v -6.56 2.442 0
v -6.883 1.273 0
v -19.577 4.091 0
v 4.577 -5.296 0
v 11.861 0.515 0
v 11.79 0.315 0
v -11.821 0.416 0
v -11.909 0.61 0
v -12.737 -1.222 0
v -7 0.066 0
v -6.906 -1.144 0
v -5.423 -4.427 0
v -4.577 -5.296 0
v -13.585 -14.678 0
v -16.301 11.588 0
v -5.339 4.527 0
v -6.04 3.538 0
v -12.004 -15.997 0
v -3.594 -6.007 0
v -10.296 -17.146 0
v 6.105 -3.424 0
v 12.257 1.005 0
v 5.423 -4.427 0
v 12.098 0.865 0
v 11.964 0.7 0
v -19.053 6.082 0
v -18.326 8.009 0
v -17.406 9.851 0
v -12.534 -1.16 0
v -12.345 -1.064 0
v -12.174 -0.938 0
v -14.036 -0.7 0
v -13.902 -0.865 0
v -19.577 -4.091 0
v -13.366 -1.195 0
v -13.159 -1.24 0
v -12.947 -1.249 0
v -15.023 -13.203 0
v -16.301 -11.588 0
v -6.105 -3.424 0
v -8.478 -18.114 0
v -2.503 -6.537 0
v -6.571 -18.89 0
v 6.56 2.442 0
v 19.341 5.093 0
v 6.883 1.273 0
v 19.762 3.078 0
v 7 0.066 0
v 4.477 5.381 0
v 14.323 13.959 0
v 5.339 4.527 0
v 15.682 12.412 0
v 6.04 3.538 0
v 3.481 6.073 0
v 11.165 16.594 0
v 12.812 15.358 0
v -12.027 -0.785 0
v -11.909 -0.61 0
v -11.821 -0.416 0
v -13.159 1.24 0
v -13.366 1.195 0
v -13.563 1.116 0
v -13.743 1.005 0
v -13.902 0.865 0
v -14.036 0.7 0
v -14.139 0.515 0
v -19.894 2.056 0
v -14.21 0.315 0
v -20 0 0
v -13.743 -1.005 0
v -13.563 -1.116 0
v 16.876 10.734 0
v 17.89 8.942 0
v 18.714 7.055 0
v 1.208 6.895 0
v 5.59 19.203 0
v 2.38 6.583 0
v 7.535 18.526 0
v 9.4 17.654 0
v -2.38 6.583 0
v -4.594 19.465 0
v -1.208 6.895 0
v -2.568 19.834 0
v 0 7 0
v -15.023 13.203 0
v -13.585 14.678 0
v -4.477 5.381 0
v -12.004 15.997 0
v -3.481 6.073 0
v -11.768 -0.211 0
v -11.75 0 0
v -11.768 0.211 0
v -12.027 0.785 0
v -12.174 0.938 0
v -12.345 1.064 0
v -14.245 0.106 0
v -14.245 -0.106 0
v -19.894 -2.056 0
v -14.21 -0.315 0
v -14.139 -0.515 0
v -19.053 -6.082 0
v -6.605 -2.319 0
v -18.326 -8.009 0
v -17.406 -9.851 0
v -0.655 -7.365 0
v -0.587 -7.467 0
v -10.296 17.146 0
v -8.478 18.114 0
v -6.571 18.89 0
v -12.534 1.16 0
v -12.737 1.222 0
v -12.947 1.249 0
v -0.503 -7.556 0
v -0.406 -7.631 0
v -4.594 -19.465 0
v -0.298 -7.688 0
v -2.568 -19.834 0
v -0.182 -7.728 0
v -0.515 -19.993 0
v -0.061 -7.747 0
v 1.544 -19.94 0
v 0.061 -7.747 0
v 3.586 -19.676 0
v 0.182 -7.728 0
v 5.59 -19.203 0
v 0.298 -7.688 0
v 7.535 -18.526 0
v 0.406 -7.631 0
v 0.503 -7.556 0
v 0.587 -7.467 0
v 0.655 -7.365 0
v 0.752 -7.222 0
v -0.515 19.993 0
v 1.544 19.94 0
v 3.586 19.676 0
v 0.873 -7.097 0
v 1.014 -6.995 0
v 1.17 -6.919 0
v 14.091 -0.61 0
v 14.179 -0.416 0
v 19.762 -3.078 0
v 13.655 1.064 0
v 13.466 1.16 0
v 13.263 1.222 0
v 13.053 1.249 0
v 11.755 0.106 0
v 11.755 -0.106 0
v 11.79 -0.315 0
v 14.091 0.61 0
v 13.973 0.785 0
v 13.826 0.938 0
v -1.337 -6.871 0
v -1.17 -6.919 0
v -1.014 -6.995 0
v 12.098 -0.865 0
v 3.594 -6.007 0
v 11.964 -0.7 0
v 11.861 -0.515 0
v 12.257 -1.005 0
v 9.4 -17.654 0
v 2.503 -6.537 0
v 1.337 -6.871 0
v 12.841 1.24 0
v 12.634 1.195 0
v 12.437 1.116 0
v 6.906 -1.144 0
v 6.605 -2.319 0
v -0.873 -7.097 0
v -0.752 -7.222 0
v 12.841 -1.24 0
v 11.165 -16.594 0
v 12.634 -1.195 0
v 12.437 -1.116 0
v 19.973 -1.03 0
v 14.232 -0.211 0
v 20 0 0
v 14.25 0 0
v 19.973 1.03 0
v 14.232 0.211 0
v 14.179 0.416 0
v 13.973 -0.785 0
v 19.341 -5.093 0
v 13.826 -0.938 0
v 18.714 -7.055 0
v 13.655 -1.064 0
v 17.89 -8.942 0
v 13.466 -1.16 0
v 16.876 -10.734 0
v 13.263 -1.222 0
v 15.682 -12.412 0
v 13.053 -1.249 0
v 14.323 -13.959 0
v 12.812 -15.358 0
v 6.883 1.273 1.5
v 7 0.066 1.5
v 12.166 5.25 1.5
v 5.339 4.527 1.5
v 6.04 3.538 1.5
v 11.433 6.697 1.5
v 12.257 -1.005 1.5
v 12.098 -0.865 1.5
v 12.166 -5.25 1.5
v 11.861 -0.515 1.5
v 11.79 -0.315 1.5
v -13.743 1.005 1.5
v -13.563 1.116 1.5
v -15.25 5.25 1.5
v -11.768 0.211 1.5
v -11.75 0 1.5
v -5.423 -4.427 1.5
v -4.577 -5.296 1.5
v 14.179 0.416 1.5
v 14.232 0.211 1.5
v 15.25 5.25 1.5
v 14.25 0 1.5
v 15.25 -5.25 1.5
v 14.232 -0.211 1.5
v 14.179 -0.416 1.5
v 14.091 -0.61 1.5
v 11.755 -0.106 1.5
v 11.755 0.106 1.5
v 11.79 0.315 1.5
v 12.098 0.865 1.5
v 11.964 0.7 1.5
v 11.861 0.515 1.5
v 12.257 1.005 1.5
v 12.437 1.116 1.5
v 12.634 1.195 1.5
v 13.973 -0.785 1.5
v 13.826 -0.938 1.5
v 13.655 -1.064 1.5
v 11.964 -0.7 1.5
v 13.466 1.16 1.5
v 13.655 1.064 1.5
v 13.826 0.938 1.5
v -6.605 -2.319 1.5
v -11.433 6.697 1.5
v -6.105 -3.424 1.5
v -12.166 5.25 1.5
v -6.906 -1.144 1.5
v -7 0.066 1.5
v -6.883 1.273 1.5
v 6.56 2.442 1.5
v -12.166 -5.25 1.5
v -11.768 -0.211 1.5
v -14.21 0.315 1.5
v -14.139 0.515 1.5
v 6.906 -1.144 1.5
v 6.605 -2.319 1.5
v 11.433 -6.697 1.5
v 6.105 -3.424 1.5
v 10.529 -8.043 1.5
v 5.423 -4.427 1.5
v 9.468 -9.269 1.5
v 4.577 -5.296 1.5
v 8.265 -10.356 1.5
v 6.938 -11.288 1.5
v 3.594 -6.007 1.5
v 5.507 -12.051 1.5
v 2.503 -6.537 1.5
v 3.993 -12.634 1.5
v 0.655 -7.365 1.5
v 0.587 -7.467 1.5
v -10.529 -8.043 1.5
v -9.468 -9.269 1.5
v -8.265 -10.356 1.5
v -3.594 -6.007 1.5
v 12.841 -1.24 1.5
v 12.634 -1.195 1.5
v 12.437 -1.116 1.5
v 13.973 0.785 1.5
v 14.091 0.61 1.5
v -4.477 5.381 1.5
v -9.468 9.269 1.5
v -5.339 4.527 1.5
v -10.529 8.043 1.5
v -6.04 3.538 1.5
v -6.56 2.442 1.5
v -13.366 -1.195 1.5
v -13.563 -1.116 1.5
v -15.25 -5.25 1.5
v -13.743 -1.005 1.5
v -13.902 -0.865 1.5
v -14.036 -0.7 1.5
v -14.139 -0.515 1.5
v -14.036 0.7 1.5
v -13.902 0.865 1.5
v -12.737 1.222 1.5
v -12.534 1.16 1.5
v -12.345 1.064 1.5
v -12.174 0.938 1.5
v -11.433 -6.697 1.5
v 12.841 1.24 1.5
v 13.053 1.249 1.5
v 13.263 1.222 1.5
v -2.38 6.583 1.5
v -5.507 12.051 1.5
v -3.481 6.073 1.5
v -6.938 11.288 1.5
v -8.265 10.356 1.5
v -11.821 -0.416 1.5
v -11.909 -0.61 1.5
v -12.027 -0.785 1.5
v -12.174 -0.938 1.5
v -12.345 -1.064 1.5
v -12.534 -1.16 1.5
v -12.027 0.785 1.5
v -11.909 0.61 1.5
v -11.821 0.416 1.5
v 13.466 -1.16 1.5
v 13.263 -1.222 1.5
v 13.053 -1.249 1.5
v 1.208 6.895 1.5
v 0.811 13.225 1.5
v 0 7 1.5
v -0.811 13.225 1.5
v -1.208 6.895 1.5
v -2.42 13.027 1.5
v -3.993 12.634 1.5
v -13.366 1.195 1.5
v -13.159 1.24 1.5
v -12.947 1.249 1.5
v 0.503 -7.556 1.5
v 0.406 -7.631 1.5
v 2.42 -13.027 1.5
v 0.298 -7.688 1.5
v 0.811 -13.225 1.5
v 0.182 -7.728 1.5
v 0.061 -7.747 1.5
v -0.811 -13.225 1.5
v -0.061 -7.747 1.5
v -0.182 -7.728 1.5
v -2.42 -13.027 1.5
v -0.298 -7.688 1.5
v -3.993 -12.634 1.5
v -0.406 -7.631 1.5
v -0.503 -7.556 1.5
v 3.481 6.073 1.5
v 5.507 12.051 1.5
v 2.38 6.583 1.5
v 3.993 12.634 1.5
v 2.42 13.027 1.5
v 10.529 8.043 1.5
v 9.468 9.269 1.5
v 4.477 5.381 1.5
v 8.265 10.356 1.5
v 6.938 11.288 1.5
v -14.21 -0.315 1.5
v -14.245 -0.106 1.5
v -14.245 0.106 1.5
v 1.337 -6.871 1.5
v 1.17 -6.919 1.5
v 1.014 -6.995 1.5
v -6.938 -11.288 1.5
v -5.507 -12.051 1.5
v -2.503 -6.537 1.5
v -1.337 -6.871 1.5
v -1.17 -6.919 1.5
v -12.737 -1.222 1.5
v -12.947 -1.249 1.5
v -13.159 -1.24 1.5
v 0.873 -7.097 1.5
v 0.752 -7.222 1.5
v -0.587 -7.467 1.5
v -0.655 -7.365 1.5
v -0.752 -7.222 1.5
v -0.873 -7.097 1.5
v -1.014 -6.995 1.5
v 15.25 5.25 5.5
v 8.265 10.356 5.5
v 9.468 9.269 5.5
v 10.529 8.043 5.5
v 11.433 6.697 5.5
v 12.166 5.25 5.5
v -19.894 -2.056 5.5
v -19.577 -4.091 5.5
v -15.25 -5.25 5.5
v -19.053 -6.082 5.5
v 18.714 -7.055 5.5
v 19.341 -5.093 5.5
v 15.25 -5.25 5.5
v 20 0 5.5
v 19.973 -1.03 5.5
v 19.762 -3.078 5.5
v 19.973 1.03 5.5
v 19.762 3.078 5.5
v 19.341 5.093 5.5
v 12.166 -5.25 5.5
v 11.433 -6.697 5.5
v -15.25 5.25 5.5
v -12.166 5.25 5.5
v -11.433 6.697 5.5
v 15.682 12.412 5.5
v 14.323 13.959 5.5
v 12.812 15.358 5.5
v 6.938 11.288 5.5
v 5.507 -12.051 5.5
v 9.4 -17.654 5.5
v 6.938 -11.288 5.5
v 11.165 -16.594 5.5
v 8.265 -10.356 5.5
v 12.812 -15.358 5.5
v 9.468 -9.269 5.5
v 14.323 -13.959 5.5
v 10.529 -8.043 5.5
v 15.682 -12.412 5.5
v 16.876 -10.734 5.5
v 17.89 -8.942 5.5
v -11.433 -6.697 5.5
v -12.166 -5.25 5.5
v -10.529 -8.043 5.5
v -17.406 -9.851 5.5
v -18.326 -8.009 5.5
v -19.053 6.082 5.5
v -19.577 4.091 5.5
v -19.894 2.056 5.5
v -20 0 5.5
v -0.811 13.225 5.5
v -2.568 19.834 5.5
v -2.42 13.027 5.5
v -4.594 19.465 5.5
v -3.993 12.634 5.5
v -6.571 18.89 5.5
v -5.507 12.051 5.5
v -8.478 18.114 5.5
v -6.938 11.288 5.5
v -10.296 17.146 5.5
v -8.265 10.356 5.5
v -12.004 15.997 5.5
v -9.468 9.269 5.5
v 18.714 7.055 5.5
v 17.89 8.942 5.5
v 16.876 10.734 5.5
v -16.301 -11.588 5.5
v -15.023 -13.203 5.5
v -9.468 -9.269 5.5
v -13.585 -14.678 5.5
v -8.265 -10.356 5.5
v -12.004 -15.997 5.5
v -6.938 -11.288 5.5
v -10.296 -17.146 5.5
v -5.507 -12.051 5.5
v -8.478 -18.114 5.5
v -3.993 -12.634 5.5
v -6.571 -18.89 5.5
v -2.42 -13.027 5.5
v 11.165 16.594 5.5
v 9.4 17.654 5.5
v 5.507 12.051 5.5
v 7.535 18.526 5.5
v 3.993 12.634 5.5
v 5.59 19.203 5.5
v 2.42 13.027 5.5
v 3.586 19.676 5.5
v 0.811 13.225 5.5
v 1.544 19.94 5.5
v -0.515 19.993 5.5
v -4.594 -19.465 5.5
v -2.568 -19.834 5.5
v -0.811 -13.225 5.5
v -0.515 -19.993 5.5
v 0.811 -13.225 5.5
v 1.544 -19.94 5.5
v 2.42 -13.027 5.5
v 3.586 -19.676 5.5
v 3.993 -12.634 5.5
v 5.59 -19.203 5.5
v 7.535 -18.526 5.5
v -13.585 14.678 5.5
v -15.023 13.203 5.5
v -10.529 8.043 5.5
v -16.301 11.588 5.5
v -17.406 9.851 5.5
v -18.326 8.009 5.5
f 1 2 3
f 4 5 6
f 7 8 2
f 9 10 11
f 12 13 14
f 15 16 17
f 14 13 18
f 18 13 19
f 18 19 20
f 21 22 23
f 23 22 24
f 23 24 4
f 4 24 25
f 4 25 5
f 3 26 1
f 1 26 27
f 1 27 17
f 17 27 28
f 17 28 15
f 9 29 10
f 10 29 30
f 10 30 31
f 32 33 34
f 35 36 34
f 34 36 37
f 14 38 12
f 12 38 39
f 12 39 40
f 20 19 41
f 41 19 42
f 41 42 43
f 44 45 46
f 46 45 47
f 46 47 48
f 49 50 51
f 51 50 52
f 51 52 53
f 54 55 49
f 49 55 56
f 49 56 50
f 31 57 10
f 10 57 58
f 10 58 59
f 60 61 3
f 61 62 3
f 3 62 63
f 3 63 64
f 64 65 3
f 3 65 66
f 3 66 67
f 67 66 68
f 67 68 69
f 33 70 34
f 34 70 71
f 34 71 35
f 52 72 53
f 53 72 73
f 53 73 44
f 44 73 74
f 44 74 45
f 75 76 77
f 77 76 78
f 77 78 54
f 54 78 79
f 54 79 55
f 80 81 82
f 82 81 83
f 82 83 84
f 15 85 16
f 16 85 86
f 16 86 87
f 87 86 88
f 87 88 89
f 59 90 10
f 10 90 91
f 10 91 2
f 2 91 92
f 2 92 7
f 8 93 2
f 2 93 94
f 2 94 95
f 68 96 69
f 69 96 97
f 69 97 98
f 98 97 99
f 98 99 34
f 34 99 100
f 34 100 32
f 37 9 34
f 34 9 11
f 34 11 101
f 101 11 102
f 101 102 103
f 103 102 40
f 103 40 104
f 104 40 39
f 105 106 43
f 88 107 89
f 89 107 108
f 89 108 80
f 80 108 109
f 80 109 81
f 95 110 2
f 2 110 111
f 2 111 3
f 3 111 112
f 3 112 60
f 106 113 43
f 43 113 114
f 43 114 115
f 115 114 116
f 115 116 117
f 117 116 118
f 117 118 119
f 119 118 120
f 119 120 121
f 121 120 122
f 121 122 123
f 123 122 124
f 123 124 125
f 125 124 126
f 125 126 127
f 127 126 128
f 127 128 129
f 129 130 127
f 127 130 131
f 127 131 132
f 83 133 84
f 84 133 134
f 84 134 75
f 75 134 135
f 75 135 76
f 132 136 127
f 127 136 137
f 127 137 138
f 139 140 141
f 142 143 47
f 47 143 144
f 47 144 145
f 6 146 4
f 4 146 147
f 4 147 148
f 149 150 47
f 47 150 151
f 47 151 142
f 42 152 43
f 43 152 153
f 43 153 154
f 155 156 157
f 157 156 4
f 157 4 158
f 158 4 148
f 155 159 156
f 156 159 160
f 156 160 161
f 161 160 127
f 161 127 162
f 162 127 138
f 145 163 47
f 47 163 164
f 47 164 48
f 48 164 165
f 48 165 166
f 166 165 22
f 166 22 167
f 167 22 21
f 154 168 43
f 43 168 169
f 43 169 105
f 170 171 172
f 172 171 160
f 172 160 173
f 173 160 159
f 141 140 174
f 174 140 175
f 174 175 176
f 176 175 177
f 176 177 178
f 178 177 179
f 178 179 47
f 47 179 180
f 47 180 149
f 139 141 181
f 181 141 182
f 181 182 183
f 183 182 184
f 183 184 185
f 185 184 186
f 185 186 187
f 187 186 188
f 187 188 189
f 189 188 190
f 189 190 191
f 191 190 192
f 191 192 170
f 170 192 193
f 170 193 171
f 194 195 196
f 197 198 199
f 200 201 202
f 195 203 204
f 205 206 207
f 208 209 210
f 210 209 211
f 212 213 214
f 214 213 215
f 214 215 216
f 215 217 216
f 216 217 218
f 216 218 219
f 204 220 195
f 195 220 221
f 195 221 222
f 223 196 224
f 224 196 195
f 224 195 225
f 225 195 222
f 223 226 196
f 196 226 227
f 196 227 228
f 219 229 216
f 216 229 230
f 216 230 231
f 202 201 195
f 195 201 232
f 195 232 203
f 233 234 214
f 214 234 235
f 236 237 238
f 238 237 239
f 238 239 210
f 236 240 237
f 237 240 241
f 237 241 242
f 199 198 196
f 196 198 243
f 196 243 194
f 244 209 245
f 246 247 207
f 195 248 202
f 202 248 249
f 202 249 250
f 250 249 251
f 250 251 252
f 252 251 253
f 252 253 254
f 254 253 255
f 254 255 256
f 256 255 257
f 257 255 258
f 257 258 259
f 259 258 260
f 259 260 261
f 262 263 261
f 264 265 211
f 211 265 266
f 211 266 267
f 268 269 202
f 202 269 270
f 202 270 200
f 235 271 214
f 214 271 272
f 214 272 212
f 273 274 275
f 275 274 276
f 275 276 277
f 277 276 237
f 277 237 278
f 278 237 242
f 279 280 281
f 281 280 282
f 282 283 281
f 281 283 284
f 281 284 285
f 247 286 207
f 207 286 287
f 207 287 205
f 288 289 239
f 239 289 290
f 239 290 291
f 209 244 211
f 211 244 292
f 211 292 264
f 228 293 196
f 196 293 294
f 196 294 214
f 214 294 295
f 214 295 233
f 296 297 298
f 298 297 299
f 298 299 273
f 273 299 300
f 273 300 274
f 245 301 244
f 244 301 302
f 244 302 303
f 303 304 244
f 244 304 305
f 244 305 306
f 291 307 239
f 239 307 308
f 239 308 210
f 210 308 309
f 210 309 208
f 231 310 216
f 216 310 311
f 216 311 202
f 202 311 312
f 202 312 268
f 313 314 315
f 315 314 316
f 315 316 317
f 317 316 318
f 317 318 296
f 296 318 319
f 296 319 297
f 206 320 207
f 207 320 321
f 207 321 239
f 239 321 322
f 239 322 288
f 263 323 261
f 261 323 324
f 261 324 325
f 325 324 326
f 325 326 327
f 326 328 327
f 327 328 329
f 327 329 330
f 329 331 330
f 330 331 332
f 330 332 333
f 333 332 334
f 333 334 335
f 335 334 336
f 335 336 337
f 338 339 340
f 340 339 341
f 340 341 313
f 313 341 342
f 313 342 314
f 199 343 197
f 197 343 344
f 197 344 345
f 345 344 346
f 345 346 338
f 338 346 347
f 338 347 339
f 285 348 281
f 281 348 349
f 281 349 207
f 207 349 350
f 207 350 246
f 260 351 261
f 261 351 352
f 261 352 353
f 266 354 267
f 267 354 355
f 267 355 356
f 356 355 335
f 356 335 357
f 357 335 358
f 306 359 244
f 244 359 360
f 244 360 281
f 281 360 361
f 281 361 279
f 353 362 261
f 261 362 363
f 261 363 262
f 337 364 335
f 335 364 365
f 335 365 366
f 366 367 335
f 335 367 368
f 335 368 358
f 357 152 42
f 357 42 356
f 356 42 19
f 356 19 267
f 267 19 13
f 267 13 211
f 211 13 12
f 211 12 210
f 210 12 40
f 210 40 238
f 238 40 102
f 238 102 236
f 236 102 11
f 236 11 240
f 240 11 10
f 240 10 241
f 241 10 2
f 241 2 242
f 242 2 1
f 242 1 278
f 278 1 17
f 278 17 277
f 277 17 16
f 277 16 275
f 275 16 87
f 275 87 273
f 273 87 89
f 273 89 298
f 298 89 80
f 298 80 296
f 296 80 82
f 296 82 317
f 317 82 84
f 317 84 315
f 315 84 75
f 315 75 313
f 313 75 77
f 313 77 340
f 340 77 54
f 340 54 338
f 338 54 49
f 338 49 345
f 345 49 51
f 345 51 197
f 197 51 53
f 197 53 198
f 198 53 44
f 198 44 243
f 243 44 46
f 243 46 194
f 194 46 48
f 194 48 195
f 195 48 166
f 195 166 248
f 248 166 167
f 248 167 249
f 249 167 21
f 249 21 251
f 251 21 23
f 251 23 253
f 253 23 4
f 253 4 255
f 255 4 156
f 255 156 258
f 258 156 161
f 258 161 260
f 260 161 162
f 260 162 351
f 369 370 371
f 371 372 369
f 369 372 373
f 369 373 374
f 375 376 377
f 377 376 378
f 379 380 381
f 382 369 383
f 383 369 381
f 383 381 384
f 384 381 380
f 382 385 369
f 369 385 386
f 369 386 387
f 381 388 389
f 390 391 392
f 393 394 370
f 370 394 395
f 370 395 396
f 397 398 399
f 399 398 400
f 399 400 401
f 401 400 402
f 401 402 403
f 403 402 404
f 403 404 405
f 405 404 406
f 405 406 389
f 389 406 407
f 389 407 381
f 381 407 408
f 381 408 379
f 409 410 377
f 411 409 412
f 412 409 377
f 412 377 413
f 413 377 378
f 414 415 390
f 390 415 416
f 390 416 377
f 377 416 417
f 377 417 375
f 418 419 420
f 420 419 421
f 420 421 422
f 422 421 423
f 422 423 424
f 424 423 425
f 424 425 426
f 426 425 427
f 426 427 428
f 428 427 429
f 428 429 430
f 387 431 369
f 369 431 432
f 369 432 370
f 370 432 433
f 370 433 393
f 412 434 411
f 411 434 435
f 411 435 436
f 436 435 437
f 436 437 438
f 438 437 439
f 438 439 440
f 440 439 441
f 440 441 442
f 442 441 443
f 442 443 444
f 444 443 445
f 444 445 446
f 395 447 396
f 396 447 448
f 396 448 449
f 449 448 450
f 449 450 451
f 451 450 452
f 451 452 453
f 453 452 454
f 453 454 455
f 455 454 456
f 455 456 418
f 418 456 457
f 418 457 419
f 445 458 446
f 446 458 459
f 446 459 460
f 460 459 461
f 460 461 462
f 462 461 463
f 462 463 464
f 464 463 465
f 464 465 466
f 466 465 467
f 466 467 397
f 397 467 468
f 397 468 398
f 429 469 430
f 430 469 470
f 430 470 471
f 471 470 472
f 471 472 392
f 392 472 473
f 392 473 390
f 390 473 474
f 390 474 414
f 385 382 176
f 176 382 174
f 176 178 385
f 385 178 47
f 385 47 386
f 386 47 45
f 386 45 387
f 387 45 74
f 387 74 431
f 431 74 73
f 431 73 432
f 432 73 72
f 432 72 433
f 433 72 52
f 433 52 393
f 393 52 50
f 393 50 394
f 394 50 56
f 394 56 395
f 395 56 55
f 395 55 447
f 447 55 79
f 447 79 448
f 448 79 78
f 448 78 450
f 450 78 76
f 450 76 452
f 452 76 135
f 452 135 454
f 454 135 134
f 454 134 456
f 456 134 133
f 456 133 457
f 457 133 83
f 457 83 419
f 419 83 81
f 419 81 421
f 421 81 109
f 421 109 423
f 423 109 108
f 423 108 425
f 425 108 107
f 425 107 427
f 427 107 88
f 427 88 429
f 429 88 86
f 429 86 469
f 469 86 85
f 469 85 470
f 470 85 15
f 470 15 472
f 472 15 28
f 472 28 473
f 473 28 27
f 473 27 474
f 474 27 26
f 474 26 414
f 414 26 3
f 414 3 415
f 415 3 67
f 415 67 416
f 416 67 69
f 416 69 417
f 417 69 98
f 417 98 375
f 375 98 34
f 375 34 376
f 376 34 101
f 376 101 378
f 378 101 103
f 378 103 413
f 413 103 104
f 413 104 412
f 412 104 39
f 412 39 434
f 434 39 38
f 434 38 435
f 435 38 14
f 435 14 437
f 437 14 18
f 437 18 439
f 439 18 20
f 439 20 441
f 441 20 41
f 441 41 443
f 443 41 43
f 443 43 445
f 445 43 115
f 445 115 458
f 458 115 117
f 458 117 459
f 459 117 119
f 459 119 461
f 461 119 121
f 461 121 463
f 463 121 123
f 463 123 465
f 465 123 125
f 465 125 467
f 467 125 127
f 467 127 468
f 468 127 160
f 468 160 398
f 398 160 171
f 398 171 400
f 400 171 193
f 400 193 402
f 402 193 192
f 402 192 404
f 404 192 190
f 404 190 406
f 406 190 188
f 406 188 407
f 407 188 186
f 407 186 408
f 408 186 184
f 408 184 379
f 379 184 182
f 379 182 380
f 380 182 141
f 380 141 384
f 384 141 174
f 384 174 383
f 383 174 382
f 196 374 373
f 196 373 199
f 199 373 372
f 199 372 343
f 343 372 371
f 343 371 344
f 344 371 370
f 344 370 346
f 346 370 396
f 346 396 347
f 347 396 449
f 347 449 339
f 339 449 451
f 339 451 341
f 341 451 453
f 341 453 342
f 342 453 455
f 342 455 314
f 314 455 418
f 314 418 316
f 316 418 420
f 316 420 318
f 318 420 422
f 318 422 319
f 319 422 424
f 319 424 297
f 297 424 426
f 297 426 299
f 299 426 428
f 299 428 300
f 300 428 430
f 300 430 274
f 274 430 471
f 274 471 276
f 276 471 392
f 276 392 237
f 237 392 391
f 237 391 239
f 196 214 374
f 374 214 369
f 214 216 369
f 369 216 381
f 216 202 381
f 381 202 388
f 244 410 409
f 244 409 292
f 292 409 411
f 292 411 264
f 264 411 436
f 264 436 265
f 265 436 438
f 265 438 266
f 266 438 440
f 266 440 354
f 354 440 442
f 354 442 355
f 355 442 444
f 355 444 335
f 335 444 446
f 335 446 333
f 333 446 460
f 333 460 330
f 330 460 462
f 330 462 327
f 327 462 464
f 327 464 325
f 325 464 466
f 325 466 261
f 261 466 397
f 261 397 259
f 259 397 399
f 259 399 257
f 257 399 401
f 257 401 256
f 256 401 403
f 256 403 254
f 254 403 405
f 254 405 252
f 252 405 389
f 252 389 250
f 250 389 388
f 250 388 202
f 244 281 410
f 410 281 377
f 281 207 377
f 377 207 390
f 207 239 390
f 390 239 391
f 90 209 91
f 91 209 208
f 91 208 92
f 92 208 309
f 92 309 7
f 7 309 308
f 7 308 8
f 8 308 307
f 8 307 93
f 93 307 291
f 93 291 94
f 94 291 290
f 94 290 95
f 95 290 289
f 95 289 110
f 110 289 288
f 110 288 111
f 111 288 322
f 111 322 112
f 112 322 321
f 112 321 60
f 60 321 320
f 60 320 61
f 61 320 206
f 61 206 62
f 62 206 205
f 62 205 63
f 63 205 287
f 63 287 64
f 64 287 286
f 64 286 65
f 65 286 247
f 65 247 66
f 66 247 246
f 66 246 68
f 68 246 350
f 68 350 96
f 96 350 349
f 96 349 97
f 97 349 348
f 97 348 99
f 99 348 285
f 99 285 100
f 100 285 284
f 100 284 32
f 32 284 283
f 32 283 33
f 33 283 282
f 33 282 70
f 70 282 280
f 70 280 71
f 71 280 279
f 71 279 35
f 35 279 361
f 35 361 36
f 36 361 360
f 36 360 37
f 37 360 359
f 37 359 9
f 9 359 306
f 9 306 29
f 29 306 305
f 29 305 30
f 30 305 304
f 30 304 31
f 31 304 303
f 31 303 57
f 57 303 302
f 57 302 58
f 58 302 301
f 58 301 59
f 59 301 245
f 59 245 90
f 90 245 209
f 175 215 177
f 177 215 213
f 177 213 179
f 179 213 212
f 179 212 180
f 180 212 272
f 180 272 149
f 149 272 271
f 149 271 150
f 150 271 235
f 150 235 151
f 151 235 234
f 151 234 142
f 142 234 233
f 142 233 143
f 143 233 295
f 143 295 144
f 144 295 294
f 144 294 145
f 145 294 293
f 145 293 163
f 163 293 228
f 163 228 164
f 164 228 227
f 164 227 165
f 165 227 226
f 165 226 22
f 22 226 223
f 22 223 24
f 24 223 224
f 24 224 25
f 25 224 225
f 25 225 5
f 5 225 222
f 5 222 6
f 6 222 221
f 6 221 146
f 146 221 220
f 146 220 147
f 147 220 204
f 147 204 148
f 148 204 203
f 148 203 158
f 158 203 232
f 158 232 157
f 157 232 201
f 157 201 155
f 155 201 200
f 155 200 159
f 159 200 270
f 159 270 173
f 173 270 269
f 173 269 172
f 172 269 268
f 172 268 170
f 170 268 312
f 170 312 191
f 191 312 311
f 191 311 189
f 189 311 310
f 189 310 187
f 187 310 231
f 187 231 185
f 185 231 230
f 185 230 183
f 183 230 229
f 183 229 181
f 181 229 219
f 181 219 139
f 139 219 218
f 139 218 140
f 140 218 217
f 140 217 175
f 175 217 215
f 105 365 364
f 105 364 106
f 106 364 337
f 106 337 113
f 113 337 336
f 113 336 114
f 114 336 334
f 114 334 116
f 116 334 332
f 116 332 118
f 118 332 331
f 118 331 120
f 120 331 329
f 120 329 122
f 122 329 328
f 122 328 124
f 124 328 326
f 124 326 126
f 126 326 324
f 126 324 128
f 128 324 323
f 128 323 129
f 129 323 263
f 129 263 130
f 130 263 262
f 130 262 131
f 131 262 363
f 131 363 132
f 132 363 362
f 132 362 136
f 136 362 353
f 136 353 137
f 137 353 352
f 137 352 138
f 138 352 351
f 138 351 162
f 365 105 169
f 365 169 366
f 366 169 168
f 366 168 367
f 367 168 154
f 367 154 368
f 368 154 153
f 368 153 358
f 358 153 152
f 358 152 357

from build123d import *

# Parameters (mm, degrees)
SKIZZE1_R                       = 20
SKIZZE1_R_2                     = 7
AUFSATZ_LINEAR_AUSTRAGEN1_DEPTH = 5.5
SCHNITT_LINEAR_AUSTRAGEN1_DEPTH = 4
SCHNITT_LINEAR_AUSTRAGEN2_REACH = 7.5
SKIZZE3_R                       = 1.25
SCHNITT_LINEAR_AUSTRAGEN3_REACH = 3.5
SKIZZE4_R                       = 0.75
VERRUNDUNG1_R                   = 1


with BuildPart() as part:
    # Skizze1 → Aufsatz-Linear austragen1 (new body)
    with BuildSketch(Plane.XY):
        Circle(SKIZZE1_R)
        Circle(SKIZZE1_R_2, mode=Mode.SUBTRACT)
    extrude(amount=AUFSATZ_LINEAR_AUSTRAGEN1_DEPTH)

    # Skizze2 → Schnitt-Linear austragen1 (cut)
    with BuildSketch(Plane.XY.offset(5.5)):
        with BuildLine():
            Line((-4.630064794, -5.25), (-12.165525061, -5.25))
            ThreePointArc((-12.165525061, -5.25), (0, -13.25), (12.165525061, -5.25))
            Line((12.165525061, -5.25), (4.630064794, -5.25))
            ThreePointArc((4.630064794, -5.25), (0, -7), (-4.630064794, -5.25))
        make_face()
        with BuildLine():
            ThreePointArc((-12.165525061, 5.25), (-13.25, 0), (-12.165525061, -5.25))
            Line((-12.165525061, -5.25), (-4.630064794, -5.25))
            ThreePointArc((-4.630064794, -5.25), (-7, 0), (-4.630064794, 5.25))
            Line((-4.630064794, 5.25), (-12.165525061, 5.25))
        make_face()
        with BuildLine():
            Line((4.630064794, -5.25), (12.165525061, -5.25))
            ThreePointArc((12.165525061, -5.25), (12.976049226, -2.680419085), (13.25, 0))
            ThreePointArc((13.25, 0), (12.976049226, 2.680419085), (12.165525061, 5.25))
            Line((12.165525061, 5.25), (4.630064794, 5.25))
            ThreePointArc((4.630064794, 5.25), (6.380064794, 2.880064794), (7, 0))
            ThreePointArc((7, 0), (6.380064794, -2.880064794), (4.630064794, -5.25))
        make_face()
        with BuildLine():
            ThreePointArc((12.165525061, 5.25), (0, 13.25), (-12.165525061, 5.25))
            Line((-12.165525061, 5.25), (-4.630064794, 5.25))
            ThreePointArc((-4.630064794, 5.25), (0, 7), (4.630064794, 5.25))
            Line((4.630064794, 5.25), (12.165525061, 5.25))
        make_face()
        with BuildLine():
            Line((-15.25, 5.25), (-15.25, -5.25))
            Line((-15.25, -5.25), (-12.165525061, -5.25))
            ThreePointArc((-12.165525061, -5.25), (-13.25, 0), (-12.165525061, 5.25))
            Line((-12.165525061, 5.25), (-15.25, 5.25))
        make_face()
        with BuildLine():
            ThreePointArc((13.25, 0), (12.976049226, -2.680419085), (12.165525061, -5.25))
            Line((12.165525061, -5.25), (15.25, -5.25))
            Line((15.25, -5.25), (15.25, 5.25))
            Line((15.25, 5.25), (12.165525061, 5.25))
            ThreePointArc((12.165525061, 5.25), (12.976049226, 2.680419085), (13.25, 0))
        make_face()
    extrude(amount=-SCHNITT_LINEAR_AUSTRAGEN1_DEPTH, mode=Mode.SUBTRACT)

    # Skizze3 → Schnitt-Linear austragen2 (cut, up to next)
    with BuildSketch(Plane.XY.offset(5.5), mode=Mode.PRIVATE) as schnitt_linear_austragen2_sk1:
        with Locations((13, 0)):
            Circle(SKIZZE3_R)
    schnitt_linear_austragen2_tool1 = extrude(schnitt_linear_austragen2_sk1.sketch, amount=-SCHNITT_LINEAR_AUSTRAGEN2_REACH, mode=Mode.PRIVATE) & part.part
    add(schnitt_linear_austragen2_tool1.solids().sort_by_distance((13, 0, 5.5))[0], mode=Mode.SUBTRACT)
    # Skizze3 → Schnitt-Linear austragen2 (cut, up to next)
    with BuildSketch(Plane.XY.offset(5.5), mode=Mode.PRIVATE) as schnitt_linear_austragen2_sk2:
        with Locations((-13, 0)):
            Circle(SKIZZE3_R)
    schnitt_linear_austragen2_tool2 = extrude(schnitt_linear_austragen2_sk2.sketch, amount=-SCHNITT_LINEAR_AUSTRAGEN2_REACH, mode=Mode.PRIVATE) & part.part
    add(schnitt_linear_austragen2_tool2.solids().sort_by_distance((-13, 0, 5.5))[0], mode=Mode.SUBTRACT)

    # Skizze4 → Schnitt-Linear austragen3 (cut, up to next)
    with BuildSketch(Plane.XY.offset(1.5), mode=Mode.PRIVATE) as schnitt_linear_austragen3_sk1:
        with Locations((0, -7)):
            Circle(SKIZZE4_R)
    schnitt_linear_austragen3_tool1 = extrude(schnitt_linear_austragen3_sk1.sketch, amount=-SCHNITT_LINEAR_AUSTRAGEN3_REACH, mode=Mode.PRIVATE) & part.part
    add(schnitt_linear_austragen3_tool1.solids().sort_by_distance((0, -7, 1.5))[0], mode=Mode.SUBTRACT)

    # Verrundung1
    verrundung1_edges = [part.edges().sort_by_distance(p)[0] for p in [
        (-0.748923015, -6.959821429, 0.75),
        (0.748923015, -6.959821429, 0.75),
    ]]
    fillet(verrundung1_edges, radius=VERRUNDUNG1_R)


solid = part.part
